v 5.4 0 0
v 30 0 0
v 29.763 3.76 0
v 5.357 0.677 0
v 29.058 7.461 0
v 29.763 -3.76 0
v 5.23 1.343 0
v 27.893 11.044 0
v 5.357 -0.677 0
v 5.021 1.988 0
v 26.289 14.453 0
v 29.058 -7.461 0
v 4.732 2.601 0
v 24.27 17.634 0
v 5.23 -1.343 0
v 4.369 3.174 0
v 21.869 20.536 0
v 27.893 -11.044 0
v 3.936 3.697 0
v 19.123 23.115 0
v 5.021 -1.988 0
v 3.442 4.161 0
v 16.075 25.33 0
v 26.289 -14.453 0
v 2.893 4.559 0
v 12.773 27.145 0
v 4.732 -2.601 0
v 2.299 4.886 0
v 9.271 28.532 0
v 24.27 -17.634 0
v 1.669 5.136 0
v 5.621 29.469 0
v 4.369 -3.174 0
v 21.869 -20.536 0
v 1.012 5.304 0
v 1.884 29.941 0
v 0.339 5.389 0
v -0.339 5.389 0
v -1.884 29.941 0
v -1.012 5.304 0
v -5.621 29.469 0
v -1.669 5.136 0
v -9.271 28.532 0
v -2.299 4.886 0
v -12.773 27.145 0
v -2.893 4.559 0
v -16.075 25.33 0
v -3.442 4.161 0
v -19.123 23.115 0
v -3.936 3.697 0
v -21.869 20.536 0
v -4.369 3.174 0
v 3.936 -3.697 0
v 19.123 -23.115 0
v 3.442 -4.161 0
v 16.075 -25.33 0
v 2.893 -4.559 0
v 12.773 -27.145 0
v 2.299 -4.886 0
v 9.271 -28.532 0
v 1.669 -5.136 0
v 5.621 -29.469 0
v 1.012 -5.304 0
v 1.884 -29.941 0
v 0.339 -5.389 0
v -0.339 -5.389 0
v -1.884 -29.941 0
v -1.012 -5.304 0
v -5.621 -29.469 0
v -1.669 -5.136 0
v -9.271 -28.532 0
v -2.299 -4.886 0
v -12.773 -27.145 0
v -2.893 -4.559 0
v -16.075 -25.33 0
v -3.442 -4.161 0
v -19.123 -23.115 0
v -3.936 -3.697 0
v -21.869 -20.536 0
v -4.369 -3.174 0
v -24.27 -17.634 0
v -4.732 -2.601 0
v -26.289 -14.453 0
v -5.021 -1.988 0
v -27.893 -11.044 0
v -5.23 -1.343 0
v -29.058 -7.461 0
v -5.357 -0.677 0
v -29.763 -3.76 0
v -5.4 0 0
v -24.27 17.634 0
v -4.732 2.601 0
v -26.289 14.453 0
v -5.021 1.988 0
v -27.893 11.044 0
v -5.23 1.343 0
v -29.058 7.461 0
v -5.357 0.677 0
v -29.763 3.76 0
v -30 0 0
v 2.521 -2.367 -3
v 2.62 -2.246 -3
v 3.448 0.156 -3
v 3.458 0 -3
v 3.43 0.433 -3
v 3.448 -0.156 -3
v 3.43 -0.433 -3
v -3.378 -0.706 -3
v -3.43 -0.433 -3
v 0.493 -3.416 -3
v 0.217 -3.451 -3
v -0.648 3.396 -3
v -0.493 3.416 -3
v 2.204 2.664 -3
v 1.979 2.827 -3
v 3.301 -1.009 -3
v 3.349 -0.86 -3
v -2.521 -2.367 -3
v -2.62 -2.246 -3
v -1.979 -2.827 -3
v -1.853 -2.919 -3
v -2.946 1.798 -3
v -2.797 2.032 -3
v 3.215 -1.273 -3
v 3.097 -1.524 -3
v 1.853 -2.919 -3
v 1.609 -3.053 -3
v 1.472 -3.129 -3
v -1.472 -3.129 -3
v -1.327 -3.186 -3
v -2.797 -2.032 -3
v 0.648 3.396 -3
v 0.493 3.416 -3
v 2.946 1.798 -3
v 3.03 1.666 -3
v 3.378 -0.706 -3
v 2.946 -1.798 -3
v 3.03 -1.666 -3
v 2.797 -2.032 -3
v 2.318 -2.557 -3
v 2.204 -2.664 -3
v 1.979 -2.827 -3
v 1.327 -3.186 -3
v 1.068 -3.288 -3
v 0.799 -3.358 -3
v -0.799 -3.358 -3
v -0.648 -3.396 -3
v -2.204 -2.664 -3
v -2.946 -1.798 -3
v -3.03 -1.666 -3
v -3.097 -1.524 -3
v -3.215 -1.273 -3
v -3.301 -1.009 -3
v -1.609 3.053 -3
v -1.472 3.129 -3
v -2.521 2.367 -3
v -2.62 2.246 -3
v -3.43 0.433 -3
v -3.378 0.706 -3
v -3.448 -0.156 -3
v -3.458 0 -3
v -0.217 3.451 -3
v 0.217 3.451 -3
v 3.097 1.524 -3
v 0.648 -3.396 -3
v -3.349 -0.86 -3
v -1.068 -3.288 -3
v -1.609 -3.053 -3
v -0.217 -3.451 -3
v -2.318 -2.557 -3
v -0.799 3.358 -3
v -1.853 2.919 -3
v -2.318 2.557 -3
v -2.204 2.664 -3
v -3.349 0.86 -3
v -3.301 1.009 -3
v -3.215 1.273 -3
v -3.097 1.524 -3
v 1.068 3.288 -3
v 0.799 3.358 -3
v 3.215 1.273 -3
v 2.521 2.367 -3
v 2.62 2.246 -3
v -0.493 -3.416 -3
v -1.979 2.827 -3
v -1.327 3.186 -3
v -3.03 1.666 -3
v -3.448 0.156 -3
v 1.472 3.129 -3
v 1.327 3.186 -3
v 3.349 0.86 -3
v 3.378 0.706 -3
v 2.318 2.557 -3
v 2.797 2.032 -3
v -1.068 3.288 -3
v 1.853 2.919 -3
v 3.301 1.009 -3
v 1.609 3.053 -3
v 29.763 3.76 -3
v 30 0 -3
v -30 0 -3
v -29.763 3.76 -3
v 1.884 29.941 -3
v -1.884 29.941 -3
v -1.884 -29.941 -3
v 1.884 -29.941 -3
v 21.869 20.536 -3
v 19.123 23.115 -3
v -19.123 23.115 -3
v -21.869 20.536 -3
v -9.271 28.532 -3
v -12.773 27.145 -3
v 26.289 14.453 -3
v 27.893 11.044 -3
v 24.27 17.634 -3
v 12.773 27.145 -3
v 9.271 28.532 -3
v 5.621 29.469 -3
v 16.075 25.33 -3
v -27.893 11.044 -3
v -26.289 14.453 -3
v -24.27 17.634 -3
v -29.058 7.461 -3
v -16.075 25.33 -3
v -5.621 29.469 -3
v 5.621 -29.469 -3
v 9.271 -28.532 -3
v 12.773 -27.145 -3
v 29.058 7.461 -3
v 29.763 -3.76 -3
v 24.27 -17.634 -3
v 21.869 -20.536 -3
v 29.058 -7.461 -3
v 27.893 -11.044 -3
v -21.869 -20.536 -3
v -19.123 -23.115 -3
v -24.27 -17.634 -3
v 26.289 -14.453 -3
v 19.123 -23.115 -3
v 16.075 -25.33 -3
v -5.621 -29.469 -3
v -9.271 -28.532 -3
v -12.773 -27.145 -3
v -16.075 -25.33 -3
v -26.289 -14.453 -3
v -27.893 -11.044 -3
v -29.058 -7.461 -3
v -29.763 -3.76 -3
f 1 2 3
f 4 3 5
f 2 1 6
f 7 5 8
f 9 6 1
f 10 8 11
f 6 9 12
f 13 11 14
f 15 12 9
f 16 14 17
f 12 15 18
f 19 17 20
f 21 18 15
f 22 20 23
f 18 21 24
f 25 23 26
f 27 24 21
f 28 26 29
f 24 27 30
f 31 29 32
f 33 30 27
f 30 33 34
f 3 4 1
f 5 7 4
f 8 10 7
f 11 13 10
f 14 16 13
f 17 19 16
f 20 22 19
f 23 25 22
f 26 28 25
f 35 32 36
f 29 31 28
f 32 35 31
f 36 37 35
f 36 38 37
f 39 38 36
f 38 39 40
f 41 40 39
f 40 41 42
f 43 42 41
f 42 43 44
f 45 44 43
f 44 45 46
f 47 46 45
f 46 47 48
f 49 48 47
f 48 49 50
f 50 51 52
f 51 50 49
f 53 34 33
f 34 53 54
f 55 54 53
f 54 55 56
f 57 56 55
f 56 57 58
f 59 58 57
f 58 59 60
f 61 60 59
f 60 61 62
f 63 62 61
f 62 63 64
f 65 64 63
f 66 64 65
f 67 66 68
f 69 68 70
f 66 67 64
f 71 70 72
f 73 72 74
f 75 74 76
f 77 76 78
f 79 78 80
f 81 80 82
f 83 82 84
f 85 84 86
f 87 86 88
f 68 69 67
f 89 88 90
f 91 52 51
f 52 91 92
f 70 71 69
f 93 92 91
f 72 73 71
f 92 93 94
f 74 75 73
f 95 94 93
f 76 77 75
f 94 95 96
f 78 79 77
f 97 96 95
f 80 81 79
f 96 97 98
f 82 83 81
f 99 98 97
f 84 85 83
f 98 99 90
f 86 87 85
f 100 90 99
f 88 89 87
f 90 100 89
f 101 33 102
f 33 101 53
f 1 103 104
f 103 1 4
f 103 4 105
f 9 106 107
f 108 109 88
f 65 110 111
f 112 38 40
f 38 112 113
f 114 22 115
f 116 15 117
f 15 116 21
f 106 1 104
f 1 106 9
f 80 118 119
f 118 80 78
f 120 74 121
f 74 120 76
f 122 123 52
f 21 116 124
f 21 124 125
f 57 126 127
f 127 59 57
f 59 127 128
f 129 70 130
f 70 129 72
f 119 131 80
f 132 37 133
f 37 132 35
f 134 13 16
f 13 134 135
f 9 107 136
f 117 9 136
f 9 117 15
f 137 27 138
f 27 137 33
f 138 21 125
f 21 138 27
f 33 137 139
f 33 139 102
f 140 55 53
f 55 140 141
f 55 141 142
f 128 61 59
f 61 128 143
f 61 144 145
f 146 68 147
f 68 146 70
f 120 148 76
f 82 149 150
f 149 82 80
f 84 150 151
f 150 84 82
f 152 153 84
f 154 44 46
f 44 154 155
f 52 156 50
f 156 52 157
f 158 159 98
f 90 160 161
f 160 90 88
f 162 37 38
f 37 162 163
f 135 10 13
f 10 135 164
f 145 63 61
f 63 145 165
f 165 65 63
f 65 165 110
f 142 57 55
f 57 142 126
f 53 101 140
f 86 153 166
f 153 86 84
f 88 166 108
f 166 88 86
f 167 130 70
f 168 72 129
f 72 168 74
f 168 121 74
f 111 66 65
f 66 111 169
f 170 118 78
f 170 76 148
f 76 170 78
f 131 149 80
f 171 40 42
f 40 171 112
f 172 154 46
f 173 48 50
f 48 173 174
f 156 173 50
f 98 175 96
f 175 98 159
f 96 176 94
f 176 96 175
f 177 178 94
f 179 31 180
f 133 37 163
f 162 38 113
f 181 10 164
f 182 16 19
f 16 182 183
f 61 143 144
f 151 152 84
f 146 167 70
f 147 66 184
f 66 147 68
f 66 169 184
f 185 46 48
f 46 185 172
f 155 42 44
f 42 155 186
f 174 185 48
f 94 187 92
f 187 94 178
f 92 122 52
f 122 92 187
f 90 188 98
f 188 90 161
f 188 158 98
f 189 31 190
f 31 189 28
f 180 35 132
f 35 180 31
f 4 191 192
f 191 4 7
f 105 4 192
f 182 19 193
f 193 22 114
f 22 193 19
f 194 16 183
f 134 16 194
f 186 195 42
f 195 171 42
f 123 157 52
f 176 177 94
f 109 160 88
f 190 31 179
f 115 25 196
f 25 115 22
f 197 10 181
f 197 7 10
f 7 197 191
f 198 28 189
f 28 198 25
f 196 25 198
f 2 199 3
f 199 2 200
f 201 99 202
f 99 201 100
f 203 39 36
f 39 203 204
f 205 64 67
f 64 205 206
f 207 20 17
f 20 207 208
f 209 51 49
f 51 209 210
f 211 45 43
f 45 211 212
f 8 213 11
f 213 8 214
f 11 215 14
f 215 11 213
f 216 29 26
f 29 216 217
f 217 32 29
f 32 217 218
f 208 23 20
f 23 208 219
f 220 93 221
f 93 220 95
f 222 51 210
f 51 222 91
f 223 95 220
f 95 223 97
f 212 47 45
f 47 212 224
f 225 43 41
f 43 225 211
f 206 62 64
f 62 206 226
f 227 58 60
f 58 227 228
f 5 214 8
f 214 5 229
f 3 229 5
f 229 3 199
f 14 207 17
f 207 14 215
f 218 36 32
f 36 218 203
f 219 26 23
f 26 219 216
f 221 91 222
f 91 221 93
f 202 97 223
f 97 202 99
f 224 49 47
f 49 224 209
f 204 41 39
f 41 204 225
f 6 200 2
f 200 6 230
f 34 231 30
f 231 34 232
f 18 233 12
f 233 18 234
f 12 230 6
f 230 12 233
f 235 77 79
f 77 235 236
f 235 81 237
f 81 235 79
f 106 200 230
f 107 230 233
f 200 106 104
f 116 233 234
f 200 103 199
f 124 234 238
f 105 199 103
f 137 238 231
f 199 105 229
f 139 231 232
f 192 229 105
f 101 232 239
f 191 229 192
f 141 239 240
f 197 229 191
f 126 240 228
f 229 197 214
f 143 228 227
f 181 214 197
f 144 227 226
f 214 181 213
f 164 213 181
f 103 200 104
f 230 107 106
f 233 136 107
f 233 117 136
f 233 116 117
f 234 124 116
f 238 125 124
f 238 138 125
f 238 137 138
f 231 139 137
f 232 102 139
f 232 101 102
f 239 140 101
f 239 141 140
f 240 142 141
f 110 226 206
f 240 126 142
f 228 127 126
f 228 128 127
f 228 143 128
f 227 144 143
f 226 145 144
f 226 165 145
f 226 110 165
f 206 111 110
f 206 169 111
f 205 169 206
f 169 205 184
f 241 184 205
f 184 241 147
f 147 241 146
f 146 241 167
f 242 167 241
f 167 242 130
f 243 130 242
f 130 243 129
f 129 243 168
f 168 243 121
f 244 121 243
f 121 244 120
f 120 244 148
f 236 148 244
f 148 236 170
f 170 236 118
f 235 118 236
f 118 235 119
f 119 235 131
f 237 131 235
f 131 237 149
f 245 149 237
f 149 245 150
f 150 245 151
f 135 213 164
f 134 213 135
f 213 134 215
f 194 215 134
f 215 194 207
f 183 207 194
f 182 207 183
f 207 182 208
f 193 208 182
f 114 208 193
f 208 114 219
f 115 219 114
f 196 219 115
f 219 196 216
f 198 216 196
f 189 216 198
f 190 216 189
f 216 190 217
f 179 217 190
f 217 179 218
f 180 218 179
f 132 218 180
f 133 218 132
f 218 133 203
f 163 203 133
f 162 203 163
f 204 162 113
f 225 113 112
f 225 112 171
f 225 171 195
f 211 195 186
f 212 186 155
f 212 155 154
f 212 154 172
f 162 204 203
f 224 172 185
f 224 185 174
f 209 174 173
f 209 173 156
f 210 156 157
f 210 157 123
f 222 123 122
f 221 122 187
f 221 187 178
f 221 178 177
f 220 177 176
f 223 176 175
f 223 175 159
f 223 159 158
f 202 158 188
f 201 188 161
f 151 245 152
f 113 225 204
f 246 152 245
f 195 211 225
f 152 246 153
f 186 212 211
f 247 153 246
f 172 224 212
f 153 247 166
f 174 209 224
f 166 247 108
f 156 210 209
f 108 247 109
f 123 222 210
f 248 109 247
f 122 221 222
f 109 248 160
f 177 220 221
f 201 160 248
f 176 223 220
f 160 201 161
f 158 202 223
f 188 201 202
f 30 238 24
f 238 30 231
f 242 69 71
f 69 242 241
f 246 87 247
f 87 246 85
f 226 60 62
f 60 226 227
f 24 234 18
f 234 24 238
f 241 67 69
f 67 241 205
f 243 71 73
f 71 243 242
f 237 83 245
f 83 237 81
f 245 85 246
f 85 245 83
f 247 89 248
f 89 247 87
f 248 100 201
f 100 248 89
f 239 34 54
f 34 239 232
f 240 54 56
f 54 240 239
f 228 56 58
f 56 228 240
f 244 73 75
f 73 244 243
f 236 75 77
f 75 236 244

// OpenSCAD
$fn = 50;


difference() {
	union() {
		translate(v = [0, 0, -3.0000000000]) {
			cylinder(h = 3, r = 30.0000000000);
		}
	}
	union() {
		translate(v = [0, 0, 0]) {
			rotate(a = [0, 0, 0]) {
				difference() {
					union() {
						translate(v = [0, 0, -6.0000000000]) {
							cylinder(h = 6, r = 2.6000000000);
						}
						translate(v = [0, 0, -3.9000000000]) {
							cylinder(h = 3.9000000000, r1 = 2.8750000000, r2 = 5.4000000000);
						}
						translate(v = [0, 0, -6.0000000000]) {
							cylinder(h = 6, r = 2.8750000000);
						}
						translate(v = [0, 0, -6.0000000000]) {
							cylinder(h = 6, r = 2.6000000000);
						}
					}
					union();
				}
			}
		}
	}
}
